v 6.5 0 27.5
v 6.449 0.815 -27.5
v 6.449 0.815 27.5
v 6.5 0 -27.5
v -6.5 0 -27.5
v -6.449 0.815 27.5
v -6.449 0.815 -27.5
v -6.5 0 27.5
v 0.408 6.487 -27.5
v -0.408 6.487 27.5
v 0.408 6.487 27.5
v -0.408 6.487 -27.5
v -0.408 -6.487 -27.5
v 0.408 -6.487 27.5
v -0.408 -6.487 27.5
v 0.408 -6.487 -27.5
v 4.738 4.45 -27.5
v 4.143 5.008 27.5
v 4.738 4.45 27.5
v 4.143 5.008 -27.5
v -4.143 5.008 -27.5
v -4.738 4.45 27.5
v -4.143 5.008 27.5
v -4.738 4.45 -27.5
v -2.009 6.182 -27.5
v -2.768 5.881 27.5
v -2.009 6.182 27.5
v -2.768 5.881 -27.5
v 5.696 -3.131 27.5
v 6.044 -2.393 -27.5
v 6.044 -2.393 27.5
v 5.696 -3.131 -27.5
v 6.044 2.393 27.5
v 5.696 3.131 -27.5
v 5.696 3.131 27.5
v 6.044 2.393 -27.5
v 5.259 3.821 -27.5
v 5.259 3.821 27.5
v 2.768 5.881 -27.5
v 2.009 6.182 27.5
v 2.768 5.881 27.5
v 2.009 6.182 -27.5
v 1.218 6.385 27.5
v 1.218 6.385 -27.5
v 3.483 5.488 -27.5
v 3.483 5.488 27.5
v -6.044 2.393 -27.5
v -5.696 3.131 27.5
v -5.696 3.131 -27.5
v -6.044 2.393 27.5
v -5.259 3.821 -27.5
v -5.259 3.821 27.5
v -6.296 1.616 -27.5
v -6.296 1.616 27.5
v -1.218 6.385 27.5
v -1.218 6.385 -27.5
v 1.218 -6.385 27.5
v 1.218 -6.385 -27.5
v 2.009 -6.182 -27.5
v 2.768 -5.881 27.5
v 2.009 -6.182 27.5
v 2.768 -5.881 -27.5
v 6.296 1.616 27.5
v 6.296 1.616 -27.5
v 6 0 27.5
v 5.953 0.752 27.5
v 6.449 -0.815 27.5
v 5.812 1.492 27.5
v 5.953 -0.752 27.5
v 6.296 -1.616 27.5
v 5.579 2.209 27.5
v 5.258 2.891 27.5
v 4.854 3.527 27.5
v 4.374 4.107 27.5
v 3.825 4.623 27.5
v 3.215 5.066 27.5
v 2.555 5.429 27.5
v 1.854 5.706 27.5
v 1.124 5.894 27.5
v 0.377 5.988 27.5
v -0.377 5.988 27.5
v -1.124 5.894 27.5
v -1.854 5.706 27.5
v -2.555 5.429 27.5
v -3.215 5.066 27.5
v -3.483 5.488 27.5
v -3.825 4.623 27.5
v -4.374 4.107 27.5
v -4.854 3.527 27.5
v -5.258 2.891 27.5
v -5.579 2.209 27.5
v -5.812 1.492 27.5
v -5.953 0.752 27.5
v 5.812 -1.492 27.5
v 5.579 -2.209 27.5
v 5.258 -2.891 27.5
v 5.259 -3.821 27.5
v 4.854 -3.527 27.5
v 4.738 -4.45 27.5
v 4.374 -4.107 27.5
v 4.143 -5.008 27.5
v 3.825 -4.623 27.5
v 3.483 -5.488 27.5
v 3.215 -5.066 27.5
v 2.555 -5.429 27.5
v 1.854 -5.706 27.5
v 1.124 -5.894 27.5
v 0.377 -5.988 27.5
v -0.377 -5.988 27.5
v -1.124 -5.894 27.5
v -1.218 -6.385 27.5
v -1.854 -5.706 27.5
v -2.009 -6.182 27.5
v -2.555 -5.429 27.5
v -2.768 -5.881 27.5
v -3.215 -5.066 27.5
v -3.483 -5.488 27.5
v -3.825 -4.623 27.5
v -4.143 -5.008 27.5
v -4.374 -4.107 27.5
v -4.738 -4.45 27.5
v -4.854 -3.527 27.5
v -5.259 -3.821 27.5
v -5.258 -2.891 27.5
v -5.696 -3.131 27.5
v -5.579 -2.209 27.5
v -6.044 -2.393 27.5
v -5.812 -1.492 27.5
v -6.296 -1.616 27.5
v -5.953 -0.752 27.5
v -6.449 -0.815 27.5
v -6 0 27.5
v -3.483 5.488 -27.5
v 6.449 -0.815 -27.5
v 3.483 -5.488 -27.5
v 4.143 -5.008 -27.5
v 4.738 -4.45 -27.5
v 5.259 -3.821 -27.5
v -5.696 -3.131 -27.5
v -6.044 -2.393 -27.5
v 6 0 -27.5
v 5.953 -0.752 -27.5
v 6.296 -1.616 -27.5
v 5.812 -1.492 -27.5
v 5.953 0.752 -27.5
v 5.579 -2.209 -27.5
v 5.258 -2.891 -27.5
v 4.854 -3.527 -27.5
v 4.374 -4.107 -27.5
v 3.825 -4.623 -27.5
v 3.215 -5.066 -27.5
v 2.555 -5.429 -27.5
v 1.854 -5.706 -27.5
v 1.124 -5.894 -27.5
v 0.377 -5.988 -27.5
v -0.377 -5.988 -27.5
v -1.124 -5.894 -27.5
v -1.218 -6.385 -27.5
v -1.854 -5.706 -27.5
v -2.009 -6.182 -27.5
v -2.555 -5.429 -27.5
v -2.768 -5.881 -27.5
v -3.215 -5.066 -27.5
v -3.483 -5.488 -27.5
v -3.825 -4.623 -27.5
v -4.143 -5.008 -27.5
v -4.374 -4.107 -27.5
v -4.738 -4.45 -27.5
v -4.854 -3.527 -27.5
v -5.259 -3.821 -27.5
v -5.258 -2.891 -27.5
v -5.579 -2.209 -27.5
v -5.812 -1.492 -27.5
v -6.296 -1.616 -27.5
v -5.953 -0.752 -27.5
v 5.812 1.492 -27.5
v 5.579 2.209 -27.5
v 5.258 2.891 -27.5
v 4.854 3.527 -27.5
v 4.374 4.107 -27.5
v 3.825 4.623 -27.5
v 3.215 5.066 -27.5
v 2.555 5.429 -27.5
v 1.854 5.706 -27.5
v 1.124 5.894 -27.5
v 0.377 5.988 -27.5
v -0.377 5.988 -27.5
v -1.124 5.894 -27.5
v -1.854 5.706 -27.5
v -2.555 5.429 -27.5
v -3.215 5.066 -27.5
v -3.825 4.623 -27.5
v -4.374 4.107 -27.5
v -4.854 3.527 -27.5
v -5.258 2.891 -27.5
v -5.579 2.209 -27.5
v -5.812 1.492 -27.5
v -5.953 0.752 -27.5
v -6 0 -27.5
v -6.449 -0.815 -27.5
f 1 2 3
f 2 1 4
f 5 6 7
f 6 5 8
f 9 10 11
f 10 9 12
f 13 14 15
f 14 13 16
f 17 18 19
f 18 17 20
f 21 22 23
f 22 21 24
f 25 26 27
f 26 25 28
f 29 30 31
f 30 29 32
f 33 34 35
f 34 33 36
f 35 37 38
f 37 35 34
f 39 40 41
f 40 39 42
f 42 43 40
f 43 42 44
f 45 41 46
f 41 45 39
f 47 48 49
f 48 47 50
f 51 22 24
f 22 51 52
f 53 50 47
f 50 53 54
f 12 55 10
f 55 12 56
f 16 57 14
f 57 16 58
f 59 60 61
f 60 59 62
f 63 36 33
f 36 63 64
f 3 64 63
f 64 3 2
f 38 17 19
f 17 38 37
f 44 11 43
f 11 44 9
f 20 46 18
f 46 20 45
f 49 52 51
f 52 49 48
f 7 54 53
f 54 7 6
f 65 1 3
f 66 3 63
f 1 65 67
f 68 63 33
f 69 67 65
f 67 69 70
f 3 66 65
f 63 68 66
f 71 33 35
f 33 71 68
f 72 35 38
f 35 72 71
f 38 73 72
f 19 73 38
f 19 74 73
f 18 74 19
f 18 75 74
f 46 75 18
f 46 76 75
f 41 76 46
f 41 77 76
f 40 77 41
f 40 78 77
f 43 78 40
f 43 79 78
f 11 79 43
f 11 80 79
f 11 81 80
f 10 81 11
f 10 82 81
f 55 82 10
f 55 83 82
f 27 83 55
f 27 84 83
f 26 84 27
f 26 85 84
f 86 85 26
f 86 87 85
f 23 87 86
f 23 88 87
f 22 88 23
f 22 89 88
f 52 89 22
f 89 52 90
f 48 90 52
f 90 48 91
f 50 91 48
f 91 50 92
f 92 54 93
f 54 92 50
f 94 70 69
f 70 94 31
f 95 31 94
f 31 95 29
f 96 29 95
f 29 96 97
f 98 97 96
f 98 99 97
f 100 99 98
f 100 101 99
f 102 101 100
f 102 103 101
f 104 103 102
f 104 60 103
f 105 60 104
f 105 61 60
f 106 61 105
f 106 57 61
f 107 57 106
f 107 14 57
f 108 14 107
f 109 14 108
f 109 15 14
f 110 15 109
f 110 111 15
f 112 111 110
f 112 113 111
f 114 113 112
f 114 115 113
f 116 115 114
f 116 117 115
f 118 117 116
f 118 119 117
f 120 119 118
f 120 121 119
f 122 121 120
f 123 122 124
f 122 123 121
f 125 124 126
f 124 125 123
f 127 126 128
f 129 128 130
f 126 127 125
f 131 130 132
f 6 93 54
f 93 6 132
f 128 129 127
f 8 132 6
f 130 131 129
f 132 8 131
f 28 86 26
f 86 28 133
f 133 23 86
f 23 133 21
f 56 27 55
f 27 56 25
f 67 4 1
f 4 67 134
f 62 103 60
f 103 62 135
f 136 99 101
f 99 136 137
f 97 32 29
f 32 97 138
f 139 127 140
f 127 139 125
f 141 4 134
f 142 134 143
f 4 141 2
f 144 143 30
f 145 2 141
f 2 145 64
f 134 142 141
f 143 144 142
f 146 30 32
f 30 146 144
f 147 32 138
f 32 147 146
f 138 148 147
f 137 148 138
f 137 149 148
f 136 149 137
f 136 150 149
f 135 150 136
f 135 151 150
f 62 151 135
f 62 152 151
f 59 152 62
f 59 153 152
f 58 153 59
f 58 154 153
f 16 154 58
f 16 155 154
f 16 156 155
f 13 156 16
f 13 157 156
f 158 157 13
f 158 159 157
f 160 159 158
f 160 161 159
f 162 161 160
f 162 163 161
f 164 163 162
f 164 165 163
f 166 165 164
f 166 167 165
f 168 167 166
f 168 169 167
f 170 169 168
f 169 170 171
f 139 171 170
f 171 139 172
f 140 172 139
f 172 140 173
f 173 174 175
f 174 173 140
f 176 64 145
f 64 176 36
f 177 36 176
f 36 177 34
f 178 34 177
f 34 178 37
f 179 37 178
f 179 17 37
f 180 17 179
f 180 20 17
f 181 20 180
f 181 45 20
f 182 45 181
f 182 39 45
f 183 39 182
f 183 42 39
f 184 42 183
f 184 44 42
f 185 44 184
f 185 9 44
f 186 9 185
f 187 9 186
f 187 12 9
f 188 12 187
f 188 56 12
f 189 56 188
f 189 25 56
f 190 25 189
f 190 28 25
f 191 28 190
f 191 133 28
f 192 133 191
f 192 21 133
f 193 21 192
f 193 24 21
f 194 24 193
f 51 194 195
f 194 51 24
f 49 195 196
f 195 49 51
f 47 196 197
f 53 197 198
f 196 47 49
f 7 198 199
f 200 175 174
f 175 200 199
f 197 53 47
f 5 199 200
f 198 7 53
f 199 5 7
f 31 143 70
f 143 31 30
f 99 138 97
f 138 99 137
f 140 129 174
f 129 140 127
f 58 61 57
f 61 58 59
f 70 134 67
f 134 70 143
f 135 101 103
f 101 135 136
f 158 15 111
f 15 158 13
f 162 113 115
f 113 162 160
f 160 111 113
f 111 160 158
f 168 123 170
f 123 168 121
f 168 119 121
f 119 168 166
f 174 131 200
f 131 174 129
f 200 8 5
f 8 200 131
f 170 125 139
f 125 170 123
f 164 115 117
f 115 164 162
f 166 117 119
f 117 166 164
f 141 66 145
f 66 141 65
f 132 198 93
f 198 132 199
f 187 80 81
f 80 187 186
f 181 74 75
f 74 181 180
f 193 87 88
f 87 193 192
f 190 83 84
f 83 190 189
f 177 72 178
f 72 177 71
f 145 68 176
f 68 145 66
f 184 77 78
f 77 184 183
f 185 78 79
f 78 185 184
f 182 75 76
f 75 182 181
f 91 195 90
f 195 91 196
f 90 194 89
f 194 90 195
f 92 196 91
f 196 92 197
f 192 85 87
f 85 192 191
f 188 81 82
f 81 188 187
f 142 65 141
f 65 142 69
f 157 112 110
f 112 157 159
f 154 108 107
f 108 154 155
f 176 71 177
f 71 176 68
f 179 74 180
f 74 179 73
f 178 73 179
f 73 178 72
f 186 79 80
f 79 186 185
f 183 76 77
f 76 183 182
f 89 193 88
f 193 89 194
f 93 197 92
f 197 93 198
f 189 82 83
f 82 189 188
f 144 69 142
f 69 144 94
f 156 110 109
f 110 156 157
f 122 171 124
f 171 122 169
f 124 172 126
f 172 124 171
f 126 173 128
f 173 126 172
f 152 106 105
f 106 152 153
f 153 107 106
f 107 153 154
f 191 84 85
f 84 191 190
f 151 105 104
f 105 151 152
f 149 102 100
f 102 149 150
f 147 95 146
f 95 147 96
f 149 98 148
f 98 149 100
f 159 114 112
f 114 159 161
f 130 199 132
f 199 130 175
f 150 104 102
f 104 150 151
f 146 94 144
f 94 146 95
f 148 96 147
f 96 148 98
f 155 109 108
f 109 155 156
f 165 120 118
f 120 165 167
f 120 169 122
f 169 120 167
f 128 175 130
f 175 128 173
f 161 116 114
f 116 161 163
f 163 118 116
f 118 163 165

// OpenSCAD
$fn = 50;


difference() {
	union() {
		translate(v = [0, 0, -27.5000000000]) {
			cylinder(h = 55, r = 6.5000000000);
		}
	}
	union() {
		translate(v = [0, 0, -100.0000000000]) {
			cylinder(h = 200, r = 6);
		}
	}
}
